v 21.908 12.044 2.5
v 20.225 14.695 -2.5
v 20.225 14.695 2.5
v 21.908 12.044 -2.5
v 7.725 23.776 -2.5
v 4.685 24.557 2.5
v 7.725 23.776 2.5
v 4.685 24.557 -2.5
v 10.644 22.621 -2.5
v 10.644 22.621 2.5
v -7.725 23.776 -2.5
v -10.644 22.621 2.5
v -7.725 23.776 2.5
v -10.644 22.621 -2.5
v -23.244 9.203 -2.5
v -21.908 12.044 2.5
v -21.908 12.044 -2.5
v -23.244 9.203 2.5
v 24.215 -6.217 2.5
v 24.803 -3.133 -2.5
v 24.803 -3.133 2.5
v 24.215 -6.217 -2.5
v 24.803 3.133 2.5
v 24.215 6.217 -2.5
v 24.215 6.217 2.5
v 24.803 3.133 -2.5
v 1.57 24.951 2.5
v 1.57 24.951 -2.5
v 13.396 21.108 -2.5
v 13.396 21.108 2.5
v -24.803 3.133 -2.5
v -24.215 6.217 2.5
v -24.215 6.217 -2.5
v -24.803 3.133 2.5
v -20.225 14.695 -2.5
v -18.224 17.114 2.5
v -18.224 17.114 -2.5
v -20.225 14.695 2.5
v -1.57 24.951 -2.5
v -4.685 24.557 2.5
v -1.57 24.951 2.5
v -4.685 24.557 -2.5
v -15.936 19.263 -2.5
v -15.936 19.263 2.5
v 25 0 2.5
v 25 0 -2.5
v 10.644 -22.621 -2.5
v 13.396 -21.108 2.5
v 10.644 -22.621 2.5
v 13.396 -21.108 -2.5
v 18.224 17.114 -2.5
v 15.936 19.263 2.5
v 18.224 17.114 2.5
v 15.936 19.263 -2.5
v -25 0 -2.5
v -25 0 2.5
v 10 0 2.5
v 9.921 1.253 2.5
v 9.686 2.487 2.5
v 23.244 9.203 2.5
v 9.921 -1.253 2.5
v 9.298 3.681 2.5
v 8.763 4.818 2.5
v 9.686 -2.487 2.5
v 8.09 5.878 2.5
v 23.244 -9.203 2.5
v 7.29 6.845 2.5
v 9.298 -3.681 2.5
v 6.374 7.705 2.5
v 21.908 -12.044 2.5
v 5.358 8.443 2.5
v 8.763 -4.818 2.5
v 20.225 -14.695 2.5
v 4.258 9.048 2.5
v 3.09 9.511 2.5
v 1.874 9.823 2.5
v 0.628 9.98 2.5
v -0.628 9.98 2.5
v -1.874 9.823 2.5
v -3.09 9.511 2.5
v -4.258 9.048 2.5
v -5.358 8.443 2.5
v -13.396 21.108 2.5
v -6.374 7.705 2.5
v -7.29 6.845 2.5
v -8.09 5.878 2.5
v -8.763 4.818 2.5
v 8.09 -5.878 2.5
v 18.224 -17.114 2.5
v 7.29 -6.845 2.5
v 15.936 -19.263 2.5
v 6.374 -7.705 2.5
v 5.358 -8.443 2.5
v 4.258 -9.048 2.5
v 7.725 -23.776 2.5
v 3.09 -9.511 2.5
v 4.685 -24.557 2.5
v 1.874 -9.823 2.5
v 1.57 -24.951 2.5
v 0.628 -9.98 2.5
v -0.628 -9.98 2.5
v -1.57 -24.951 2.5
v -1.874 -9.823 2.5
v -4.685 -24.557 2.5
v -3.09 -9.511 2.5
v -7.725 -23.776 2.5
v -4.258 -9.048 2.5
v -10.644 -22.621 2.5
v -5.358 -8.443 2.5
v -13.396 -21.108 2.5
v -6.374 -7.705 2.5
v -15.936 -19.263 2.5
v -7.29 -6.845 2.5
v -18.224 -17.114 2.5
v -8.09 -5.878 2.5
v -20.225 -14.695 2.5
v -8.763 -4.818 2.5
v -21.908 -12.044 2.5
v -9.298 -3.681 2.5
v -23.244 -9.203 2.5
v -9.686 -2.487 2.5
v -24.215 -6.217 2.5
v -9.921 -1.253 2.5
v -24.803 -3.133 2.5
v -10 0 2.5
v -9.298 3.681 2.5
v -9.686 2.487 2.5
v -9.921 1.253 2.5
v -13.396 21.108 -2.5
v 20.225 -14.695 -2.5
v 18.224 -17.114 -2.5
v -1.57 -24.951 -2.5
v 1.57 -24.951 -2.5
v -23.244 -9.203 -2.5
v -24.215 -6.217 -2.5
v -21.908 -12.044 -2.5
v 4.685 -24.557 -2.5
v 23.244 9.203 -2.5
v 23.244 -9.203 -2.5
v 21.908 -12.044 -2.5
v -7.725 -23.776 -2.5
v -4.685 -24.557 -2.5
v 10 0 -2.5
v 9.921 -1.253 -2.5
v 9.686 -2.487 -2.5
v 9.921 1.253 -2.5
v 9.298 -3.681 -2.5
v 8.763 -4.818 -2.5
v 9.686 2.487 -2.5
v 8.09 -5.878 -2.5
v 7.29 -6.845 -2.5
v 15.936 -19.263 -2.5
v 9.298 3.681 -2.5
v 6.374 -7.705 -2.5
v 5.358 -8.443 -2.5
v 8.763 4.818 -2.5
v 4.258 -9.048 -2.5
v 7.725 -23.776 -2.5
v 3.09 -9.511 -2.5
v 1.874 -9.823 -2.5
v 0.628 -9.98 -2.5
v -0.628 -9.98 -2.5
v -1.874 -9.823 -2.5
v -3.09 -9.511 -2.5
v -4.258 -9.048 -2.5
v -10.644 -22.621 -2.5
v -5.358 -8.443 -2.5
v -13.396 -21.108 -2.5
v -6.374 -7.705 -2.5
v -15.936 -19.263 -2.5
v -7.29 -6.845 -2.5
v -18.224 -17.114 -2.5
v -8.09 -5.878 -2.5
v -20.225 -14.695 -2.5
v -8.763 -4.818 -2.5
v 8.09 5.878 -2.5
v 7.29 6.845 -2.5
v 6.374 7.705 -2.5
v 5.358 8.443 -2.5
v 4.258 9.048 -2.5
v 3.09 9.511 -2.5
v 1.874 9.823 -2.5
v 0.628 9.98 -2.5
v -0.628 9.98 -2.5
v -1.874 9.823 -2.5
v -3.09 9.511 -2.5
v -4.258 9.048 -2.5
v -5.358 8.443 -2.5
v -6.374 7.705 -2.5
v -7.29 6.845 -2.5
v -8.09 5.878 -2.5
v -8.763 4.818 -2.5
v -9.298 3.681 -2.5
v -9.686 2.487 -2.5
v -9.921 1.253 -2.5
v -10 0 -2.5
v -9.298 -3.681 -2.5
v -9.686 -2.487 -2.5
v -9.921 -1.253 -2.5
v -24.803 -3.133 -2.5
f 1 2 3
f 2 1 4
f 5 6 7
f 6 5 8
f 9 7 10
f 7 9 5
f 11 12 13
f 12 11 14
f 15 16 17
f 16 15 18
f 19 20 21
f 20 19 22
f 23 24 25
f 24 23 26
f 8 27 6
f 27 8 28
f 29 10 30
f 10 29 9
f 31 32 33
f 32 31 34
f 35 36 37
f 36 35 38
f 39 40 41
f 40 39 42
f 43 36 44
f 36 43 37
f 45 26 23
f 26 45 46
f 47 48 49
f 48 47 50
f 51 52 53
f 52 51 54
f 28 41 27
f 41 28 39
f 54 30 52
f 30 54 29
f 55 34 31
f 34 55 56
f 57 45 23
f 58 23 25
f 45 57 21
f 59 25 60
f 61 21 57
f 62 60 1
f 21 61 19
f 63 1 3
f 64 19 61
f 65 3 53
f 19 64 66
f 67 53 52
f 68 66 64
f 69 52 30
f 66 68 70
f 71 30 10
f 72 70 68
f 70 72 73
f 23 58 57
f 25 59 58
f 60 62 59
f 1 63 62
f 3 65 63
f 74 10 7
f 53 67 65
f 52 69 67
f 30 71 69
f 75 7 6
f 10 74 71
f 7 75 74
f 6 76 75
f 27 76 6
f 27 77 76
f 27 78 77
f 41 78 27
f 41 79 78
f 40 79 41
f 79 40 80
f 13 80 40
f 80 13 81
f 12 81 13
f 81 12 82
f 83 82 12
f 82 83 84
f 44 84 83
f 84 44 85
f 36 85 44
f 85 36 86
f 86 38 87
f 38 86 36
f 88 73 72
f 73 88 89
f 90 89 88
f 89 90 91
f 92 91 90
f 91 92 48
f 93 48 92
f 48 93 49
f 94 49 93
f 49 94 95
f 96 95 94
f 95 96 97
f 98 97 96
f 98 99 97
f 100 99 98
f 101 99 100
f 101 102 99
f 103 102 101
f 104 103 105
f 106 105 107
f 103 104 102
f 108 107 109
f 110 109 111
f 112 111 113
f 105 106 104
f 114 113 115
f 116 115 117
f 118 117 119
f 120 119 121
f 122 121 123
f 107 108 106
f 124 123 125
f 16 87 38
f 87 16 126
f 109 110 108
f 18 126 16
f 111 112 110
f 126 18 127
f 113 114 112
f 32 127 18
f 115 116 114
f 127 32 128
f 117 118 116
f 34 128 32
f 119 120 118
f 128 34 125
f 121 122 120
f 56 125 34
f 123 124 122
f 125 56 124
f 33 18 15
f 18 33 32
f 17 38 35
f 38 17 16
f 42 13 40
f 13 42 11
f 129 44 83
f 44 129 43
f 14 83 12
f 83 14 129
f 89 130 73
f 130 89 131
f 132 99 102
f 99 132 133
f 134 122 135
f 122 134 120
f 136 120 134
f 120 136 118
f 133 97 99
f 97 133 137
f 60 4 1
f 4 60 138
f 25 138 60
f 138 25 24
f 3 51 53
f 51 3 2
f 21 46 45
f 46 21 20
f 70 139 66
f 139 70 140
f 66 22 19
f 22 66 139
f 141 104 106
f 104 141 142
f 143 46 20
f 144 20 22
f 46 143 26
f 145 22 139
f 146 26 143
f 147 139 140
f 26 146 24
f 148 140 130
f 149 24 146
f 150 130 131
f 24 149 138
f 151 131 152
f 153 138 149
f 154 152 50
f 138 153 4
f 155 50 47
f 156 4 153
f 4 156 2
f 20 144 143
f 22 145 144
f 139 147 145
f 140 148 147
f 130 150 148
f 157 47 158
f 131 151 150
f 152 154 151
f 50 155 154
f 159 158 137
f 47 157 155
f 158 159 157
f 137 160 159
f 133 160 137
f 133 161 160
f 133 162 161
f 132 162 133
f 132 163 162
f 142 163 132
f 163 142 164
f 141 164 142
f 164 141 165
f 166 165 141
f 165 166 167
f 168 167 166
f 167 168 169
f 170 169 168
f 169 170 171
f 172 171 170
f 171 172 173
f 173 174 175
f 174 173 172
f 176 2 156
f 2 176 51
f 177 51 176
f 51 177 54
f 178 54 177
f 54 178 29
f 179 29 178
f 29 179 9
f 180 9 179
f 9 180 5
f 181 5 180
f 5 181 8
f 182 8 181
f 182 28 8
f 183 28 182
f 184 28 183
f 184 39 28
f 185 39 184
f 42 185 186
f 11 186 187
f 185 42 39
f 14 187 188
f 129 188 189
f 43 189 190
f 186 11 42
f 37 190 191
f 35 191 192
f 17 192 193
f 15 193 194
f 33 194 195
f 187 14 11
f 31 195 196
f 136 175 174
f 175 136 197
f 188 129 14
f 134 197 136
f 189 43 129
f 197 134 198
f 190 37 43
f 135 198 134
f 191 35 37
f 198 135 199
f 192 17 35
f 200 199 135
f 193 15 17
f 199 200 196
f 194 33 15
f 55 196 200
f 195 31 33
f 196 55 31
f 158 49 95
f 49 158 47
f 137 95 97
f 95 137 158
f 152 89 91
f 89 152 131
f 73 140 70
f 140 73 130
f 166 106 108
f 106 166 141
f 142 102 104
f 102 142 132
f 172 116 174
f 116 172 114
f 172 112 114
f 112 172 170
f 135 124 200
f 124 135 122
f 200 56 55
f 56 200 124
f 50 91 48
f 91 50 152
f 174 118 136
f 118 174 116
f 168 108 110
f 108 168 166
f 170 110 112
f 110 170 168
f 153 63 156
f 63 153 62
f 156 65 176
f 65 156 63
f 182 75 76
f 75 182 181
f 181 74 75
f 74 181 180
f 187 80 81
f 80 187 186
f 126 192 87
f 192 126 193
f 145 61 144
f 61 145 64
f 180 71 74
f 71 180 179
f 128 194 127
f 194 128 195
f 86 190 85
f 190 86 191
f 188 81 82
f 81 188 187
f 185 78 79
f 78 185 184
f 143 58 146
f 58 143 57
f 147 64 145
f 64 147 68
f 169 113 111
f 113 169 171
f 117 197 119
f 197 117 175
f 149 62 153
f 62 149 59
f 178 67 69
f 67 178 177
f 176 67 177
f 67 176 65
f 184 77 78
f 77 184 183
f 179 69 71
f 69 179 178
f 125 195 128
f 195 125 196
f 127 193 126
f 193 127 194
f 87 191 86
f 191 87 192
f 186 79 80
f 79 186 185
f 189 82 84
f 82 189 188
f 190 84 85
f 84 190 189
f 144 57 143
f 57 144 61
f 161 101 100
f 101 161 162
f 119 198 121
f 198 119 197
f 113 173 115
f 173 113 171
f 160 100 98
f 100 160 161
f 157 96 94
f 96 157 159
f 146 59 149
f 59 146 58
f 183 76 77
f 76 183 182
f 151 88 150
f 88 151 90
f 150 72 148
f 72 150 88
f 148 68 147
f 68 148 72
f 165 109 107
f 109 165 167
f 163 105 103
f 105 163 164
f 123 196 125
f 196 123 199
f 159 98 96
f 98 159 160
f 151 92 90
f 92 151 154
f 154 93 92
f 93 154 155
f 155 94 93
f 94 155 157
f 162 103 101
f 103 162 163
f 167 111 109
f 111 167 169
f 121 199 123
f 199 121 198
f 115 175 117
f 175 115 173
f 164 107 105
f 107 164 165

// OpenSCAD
$fn = 50;


difference() {
	union() {
		translate(v = [0, 0, -2.5000000000]) {
			cylinder(h = 5, r = 25.0000000000);
		}
	}
	union() {
		translate(v = [0, 0, -100.0000000000]) {
			cylinder(h = 200, r = 10);
		}
	}
}
